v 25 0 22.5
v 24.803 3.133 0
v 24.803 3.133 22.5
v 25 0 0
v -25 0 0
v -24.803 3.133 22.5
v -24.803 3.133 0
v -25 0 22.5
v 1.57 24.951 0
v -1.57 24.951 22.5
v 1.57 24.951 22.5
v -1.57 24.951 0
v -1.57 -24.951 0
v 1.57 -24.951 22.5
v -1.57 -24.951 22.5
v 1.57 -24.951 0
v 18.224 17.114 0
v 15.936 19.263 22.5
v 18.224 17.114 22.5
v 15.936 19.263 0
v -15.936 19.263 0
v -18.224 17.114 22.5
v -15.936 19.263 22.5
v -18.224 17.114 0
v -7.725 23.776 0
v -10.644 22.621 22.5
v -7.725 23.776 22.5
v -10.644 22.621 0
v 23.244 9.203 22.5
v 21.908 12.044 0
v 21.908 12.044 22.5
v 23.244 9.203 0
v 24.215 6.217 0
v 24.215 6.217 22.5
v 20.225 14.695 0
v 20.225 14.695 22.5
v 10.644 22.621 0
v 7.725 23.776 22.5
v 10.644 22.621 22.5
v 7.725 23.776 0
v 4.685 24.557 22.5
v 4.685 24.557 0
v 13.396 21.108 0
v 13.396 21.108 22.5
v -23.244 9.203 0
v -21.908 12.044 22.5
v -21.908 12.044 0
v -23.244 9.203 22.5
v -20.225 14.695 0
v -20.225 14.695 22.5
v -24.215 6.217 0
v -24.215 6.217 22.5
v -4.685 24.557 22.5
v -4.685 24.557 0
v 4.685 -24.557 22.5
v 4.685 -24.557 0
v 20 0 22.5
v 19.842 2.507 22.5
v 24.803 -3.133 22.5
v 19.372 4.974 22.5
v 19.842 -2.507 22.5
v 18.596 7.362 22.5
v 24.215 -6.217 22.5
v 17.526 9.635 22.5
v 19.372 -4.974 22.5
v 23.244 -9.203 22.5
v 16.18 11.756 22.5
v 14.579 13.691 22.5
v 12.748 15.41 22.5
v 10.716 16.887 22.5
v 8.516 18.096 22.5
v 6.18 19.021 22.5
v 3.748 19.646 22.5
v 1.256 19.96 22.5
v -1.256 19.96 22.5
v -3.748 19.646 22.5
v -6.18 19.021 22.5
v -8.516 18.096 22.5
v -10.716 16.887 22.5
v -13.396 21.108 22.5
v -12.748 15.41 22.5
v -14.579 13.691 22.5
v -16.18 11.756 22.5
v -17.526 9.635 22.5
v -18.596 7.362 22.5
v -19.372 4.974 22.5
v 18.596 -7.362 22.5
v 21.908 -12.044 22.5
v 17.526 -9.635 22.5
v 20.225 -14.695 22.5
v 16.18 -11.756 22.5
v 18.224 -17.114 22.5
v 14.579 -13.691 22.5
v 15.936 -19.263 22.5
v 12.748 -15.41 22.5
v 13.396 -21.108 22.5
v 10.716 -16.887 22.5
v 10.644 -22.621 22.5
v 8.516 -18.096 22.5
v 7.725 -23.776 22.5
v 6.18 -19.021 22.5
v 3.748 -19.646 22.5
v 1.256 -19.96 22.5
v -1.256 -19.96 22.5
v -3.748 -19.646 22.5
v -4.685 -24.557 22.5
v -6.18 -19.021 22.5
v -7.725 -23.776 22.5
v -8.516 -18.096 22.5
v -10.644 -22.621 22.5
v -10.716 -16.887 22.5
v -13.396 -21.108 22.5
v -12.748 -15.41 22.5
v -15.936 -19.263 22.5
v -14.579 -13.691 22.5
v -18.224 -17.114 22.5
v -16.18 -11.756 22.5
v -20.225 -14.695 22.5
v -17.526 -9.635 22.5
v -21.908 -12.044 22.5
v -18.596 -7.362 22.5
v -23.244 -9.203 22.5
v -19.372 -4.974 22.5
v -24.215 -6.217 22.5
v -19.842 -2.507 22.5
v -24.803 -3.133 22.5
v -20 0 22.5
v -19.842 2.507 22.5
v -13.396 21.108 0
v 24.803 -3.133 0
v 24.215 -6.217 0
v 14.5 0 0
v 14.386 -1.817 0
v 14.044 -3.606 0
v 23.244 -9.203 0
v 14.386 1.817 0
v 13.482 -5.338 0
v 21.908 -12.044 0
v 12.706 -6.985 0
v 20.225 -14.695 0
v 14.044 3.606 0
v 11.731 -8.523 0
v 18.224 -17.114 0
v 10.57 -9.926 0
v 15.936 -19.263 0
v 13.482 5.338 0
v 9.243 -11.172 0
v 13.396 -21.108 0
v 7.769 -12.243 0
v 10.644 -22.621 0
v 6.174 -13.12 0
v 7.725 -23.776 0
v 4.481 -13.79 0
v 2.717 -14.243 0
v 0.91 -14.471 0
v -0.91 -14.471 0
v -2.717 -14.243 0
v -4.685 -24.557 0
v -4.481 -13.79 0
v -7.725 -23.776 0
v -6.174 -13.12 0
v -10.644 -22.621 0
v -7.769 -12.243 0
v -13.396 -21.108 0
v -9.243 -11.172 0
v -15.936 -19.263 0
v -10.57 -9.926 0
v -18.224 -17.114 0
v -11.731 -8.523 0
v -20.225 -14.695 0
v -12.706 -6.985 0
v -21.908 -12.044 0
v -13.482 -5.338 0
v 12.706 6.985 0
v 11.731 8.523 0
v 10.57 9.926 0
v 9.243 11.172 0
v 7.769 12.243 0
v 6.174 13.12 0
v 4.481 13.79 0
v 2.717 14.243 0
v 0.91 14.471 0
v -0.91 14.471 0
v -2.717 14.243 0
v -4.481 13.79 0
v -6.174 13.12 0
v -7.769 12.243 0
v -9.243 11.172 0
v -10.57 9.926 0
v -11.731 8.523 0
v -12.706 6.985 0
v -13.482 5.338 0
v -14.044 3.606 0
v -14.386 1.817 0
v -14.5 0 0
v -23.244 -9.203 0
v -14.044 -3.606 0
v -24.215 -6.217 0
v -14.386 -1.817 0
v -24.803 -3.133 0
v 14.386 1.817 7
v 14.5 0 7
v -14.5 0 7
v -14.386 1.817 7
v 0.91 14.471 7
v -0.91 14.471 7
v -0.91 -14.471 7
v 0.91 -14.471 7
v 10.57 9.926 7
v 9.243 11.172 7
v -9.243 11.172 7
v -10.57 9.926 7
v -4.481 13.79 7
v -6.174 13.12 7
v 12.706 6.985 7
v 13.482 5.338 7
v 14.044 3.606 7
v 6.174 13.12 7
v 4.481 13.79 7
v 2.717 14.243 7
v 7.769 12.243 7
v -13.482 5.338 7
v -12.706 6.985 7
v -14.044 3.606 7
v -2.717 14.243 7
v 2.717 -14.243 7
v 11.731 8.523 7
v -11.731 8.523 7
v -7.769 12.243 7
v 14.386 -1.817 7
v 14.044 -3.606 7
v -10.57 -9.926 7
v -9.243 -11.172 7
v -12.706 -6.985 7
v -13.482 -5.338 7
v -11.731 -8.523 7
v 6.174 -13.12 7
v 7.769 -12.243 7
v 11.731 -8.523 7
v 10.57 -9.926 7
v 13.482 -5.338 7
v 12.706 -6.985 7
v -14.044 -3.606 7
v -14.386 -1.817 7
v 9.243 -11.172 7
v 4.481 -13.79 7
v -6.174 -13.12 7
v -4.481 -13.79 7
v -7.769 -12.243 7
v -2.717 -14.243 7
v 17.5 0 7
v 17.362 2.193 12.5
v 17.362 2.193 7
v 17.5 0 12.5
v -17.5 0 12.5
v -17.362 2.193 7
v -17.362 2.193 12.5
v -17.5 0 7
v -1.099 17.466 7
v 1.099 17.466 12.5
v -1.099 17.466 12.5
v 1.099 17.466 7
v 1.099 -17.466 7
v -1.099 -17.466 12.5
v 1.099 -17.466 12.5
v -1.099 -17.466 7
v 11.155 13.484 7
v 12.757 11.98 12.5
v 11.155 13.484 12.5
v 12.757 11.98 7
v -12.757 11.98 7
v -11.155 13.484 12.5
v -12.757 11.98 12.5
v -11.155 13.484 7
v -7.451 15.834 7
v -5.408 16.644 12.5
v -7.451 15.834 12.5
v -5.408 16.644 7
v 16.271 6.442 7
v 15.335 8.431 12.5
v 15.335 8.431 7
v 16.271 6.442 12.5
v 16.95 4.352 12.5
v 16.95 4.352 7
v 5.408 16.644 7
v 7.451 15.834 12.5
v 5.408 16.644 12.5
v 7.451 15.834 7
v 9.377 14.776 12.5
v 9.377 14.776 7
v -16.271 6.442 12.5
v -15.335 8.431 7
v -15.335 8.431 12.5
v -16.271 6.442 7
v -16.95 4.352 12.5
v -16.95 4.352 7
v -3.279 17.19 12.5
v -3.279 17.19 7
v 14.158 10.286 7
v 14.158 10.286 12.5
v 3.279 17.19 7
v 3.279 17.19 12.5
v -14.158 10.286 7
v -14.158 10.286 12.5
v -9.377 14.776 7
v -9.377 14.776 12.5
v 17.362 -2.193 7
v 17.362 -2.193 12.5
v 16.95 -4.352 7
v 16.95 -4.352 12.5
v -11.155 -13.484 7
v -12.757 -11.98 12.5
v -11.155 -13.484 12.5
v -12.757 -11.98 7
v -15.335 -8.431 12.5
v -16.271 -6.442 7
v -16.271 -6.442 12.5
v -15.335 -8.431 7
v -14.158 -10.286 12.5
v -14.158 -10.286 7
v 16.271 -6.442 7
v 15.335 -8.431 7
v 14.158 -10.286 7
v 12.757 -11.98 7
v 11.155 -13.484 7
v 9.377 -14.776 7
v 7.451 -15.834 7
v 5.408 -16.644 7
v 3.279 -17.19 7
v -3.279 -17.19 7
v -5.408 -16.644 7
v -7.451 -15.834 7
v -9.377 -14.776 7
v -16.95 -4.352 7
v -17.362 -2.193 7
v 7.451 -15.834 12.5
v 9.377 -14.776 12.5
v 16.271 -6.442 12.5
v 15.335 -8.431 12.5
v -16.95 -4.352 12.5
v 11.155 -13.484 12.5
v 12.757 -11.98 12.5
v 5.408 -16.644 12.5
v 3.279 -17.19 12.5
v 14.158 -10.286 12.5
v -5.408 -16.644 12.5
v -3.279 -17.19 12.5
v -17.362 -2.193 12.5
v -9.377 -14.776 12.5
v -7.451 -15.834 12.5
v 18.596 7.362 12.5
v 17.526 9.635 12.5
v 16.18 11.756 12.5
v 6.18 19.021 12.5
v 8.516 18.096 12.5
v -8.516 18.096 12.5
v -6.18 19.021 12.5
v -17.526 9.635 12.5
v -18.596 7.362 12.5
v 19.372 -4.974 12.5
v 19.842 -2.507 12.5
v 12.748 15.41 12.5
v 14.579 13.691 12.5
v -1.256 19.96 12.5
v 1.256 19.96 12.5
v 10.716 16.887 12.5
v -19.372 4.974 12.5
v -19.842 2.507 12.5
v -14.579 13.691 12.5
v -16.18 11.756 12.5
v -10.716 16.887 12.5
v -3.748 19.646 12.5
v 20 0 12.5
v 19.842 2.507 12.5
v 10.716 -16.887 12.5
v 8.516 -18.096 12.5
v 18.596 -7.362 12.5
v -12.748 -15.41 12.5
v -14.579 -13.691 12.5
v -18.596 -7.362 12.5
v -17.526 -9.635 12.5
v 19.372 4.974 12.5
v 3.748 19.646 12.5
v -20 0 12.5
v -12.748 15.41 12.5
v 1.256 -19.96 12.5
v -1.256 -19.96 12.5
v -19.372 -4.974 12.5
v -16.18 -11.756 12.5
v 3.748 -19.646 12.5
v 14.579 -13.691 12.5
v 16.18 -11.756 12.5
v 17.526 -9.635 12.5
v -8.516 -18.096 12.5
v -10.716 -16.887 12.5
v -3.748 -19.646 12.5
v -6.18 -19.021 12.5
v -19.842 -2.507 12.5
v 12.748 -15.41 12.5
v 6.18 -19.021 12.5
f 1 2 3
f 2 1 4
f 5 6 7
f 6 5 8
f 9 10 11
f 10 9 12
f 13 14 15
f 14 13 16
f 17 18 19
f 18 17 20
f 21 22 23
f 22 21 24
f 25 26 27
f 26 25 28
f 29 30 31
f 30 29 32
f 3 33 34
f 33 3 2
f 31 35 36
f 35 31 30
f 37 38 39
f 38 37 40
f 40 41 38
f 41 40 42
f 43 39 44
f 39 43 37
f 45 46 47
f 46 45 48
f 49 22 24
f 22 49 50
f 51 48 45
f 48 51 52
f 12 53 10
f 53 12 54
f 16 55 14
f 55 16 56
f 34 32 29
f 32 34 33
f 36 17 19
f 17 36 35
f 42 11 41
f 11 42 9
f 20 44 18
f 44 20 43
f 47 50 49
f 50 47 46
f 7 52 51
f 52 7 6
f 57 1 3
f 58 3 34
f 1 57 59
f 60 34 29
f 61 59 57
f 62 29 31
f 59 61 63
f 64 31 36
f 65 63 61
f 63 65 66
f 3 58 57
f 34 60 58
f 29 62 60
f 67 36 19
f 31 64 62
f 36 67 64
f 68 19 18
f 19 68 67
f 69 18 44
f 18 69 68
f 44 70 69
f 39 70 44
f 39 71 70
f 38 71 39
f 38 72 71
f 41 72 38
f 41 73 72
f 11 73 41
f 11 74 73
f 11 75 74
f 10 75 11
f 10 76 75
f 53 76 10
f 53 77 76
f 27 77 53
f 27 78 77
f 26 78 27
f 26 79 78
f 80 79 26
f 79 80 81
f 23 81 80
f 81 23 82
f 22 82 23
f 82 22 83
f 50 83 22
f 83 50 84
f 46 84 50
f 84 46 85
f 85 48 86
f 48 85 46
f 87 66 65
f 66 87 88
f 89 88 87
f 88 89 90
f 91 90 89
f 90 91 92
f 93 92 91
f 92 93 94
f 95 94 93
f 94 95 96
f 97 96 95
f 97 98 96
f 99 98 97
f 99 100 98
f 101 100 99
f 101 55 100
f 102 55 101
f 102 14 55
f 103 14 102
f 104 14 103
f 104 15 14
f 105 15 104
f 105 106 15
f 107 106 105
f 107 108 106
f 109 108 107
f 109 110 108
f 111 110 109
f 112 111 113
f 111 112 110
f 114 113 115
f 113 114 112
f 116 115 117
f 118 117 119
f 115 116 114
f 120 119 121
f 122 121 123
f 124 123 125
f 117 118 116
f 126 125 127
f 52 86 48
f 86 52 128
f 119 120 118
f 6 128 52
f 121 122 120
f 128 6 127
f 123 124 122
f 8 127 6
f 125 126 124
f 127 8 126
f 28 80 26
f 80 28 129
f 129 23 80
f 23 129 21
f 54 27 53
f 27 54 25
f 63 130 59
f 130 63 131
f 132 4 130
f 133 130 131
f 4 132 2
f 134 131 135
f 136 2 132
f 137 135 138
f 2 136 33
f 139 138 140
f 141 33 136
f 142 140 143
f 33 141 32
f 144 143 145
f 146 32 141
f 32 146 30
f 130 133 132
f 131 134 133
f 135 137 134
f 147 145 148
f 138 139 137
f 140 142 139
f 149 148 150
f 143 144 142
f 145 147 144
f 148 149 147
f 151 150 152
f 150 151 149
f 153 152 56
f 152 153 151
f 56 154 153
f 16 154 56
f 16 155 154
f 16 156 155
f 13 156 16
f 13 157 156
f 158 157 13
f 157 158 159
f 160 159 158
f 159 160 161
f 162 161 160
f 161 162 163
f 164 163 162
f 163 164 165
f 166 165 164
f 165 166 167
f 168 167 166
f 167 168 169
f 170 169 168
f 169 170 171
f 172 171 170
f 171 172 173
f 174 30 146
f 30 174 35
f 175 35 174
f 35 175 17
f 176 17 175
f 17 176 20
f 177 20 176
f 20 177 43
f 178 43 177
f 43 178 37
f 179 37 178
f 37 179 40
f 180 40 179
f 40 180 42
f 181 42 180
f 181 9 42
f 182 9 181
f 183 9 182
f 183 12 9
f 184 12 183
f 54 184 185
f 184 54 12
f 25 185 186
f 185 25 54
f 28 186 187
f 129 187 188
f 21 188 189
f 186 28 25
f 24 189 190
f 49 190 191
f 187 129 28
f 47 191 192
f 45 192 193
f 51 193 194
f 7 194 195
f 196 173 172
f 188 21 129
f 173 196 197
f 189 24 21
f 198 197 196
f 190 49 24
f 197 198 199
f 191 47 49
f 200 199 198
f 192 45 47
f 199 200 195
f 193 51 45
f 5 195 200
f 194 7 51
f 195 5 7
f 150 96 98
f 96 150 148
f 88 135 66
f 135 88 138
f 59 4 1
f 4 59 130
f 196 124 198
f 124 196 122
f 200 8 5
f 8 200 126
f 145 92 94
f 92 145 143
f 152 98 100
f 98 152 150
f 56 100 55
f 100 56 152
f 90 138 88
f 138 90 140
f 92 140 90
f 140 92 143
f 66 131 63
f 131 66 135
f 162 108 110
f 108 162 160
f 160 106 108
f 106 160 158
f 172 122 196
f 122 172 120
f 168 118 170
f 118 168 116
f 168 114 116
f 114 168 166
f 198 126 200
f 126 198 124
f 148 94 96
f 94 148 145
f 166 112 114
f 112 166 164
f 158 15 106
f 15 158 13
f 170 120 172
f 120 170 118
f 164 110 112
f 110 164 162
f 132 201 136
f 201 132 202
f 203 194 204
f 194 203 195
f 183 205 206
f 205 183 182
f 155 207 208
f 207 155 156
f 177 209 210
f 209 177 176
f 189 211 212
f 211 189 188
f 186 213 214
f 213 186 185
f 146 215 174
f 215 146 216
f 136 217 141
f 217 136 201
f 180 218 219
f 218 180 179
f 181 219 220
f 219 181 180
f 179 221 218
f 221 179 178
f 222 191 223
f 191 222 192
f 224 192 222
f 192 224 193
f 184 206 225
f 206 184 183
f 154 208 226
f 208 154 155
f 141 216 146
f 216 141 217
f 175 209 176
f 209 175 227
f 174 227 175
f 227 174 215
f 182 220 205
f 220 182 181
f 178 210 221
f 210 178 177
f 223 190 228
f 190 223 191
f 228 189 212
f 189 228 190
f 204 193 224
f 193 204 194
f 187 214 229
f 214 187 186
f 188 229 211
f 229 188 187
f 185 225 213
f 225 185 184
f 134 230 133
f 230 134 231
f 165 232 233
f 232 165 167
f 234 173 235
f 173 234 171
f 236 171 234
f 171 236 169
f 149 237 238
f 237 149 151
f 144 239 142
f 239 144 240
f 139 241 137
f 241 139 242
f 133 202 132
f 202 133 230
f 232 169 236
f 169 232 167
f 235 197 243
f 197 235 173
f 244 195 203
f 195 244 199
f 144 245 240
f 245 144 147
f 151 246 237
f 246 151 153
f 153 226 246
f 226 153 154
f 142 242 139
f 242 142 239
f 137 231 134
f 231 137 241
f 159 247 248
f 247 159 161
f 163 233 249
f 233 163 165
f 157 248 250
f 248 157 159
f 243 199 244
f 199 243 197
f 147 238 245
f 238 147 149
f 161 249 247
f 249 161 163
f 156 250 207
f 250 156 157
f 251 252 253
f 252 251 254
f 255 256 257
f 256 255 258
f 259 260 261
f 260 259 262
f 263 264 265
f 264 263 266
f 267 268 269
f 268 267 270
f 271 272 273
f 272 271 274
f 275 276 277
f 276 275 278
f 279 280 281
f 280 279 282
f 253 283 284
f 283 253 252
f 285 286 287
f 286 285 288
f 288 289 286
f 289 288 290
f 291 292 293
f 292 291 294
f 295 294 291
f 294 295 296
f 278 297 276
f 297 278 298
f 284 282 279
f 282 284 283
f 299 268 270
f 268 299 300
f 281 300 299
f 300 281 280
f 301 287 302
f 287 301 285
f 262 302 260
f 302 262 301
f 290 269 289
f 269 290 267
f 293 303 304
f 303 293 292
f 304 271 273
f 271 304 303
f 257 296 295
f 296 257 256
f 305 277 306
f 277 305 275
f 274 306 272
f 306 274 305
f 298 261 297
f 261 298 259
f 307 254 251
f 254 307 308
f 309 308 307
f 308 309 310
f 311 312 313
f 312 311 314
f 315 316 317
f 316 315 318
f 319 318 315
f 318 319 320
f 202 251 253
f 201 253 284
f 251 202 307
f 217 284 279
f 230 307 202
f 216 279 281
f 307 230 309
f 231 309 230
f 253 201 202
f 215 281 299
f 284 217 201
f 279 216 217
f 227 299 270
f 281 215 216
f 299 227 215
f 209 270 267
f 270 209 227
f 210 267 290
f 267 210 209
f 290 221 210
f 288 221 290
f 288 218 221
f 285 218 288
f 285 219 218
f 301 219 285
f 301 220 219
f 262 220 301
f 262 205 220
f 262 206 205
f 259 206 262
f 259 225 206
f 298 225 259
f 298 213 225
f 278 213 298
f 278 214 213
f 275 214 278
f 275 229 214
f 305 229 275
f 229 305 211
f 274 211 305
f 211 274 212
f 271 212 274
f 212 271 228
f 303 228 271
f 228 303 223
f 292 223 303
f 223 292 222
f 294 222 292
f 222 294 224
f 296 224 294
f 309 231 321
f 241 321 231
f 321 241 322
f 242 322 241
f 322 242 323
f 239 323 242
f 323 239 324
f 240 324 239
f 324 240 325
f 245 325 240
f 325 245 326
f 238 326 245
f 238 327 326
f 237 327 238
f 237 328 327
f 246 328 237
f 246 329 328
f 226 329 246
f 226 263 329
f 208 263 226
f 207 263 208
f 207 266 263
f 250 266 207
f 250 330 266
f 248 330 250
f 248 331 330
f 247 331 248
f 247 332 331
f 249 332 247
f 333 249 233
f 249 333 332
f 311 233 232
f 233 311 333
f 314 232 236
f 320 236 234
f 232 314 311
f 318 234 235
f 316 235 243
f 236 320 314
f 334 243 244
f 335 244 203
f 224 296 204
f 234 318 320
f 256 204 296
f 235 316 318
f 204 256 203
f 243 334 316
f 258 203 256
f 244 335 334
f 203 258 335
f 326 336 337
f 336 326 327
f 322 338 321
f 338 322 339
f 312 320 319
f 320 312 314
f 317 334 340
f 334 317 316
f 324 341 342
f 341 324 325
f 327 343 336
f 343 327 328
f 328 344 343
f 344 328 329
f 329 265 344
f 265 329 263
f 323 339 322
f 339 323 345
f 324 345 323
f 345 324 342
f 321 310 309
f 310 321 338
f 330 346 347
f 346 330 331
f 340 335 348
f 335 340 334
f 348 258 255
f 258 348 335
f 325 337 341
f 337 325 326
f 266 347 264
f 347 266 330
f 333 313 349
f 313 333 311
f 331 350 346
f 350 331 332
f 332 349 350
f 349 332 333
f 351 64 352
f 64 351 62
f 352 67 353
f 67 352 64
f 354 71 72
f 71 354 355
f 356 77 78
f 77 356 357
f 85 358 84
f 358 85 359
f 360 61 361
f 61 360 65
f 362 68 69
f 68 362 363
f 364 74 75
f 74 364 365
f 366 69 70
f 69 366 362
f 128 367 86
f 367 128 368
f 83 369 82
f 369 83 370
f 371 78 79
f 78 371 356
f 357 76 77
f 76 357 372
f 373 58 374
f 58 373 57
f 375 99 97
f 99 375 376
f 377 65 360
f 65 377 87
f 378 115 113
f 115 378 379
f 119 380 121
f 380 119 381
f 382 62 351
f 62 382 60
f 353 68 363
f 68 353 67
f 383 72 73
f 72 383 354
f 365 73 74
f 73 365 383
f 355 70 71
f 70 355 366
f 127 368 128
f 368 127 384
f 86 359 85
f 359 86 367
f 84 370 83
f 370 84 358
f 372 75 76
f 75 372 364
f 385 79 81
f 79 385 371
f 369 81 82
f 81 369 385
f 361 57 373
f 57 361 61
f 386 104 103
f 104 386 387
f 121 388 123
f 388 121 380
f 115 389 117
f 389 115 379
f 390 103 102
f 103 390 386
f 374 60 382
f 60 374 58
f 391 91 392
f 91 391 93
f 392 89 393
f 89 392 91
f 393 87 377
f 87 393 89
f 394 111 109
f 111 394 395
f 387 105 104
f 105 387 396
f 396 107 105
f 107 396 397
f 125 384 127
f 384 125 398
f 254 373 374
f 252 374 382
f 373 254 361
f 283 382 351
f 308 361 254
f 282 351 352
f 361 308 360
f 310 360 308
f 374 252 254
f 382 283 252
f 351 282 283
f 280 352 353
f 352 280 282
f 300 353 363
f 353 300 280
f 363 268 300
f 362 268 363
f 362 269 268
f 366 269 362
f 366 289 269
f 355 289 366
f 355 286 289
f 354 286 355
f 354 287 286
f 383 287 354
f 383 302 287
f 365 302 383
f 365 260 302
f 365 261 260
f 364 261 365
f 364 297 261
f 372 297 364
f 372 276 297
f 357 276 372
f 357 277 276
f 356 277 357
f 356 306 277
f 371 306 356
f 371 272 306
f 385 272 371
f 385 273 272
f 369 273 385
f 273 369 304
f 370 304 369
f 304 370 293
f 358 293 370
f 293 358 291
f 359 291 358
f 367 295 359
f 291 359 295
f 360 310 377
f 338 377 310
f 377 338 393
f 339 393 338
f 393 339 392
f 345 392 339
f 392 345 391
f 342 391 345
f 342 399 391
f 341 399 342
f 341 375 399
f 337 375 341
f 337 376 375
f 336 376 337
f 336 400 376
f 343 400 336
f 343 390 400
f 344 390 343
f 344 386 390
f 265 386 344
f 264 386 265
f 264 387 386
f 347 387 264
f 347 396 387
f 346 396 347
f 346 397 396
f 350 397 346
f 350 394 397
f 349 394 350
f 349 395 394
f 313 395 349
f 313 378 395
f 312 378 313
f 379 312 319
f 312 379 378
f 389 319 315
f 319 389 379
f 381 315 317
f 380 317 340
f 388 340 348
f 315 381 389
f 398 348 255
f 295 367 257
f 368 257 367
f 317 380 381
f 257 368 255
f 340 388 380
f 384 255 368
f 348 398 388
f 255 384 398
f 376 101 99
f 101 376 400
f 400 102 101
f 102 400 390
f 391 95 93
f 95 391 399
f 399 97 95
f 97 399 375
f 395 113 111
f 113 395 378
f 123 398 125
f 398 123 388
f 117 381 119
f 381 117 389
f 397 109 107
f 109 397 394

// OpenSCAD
$fn=50;
difference() {
    cylinder(22.5,50/2,50/2);
    cylinder(22.5,29/2,29/2);
    translate([0,0,7])cylinder(22.5,35/2,35/2);
    translate([0,0,12.5])cylinder(22.5,40/2,40/2);
}
